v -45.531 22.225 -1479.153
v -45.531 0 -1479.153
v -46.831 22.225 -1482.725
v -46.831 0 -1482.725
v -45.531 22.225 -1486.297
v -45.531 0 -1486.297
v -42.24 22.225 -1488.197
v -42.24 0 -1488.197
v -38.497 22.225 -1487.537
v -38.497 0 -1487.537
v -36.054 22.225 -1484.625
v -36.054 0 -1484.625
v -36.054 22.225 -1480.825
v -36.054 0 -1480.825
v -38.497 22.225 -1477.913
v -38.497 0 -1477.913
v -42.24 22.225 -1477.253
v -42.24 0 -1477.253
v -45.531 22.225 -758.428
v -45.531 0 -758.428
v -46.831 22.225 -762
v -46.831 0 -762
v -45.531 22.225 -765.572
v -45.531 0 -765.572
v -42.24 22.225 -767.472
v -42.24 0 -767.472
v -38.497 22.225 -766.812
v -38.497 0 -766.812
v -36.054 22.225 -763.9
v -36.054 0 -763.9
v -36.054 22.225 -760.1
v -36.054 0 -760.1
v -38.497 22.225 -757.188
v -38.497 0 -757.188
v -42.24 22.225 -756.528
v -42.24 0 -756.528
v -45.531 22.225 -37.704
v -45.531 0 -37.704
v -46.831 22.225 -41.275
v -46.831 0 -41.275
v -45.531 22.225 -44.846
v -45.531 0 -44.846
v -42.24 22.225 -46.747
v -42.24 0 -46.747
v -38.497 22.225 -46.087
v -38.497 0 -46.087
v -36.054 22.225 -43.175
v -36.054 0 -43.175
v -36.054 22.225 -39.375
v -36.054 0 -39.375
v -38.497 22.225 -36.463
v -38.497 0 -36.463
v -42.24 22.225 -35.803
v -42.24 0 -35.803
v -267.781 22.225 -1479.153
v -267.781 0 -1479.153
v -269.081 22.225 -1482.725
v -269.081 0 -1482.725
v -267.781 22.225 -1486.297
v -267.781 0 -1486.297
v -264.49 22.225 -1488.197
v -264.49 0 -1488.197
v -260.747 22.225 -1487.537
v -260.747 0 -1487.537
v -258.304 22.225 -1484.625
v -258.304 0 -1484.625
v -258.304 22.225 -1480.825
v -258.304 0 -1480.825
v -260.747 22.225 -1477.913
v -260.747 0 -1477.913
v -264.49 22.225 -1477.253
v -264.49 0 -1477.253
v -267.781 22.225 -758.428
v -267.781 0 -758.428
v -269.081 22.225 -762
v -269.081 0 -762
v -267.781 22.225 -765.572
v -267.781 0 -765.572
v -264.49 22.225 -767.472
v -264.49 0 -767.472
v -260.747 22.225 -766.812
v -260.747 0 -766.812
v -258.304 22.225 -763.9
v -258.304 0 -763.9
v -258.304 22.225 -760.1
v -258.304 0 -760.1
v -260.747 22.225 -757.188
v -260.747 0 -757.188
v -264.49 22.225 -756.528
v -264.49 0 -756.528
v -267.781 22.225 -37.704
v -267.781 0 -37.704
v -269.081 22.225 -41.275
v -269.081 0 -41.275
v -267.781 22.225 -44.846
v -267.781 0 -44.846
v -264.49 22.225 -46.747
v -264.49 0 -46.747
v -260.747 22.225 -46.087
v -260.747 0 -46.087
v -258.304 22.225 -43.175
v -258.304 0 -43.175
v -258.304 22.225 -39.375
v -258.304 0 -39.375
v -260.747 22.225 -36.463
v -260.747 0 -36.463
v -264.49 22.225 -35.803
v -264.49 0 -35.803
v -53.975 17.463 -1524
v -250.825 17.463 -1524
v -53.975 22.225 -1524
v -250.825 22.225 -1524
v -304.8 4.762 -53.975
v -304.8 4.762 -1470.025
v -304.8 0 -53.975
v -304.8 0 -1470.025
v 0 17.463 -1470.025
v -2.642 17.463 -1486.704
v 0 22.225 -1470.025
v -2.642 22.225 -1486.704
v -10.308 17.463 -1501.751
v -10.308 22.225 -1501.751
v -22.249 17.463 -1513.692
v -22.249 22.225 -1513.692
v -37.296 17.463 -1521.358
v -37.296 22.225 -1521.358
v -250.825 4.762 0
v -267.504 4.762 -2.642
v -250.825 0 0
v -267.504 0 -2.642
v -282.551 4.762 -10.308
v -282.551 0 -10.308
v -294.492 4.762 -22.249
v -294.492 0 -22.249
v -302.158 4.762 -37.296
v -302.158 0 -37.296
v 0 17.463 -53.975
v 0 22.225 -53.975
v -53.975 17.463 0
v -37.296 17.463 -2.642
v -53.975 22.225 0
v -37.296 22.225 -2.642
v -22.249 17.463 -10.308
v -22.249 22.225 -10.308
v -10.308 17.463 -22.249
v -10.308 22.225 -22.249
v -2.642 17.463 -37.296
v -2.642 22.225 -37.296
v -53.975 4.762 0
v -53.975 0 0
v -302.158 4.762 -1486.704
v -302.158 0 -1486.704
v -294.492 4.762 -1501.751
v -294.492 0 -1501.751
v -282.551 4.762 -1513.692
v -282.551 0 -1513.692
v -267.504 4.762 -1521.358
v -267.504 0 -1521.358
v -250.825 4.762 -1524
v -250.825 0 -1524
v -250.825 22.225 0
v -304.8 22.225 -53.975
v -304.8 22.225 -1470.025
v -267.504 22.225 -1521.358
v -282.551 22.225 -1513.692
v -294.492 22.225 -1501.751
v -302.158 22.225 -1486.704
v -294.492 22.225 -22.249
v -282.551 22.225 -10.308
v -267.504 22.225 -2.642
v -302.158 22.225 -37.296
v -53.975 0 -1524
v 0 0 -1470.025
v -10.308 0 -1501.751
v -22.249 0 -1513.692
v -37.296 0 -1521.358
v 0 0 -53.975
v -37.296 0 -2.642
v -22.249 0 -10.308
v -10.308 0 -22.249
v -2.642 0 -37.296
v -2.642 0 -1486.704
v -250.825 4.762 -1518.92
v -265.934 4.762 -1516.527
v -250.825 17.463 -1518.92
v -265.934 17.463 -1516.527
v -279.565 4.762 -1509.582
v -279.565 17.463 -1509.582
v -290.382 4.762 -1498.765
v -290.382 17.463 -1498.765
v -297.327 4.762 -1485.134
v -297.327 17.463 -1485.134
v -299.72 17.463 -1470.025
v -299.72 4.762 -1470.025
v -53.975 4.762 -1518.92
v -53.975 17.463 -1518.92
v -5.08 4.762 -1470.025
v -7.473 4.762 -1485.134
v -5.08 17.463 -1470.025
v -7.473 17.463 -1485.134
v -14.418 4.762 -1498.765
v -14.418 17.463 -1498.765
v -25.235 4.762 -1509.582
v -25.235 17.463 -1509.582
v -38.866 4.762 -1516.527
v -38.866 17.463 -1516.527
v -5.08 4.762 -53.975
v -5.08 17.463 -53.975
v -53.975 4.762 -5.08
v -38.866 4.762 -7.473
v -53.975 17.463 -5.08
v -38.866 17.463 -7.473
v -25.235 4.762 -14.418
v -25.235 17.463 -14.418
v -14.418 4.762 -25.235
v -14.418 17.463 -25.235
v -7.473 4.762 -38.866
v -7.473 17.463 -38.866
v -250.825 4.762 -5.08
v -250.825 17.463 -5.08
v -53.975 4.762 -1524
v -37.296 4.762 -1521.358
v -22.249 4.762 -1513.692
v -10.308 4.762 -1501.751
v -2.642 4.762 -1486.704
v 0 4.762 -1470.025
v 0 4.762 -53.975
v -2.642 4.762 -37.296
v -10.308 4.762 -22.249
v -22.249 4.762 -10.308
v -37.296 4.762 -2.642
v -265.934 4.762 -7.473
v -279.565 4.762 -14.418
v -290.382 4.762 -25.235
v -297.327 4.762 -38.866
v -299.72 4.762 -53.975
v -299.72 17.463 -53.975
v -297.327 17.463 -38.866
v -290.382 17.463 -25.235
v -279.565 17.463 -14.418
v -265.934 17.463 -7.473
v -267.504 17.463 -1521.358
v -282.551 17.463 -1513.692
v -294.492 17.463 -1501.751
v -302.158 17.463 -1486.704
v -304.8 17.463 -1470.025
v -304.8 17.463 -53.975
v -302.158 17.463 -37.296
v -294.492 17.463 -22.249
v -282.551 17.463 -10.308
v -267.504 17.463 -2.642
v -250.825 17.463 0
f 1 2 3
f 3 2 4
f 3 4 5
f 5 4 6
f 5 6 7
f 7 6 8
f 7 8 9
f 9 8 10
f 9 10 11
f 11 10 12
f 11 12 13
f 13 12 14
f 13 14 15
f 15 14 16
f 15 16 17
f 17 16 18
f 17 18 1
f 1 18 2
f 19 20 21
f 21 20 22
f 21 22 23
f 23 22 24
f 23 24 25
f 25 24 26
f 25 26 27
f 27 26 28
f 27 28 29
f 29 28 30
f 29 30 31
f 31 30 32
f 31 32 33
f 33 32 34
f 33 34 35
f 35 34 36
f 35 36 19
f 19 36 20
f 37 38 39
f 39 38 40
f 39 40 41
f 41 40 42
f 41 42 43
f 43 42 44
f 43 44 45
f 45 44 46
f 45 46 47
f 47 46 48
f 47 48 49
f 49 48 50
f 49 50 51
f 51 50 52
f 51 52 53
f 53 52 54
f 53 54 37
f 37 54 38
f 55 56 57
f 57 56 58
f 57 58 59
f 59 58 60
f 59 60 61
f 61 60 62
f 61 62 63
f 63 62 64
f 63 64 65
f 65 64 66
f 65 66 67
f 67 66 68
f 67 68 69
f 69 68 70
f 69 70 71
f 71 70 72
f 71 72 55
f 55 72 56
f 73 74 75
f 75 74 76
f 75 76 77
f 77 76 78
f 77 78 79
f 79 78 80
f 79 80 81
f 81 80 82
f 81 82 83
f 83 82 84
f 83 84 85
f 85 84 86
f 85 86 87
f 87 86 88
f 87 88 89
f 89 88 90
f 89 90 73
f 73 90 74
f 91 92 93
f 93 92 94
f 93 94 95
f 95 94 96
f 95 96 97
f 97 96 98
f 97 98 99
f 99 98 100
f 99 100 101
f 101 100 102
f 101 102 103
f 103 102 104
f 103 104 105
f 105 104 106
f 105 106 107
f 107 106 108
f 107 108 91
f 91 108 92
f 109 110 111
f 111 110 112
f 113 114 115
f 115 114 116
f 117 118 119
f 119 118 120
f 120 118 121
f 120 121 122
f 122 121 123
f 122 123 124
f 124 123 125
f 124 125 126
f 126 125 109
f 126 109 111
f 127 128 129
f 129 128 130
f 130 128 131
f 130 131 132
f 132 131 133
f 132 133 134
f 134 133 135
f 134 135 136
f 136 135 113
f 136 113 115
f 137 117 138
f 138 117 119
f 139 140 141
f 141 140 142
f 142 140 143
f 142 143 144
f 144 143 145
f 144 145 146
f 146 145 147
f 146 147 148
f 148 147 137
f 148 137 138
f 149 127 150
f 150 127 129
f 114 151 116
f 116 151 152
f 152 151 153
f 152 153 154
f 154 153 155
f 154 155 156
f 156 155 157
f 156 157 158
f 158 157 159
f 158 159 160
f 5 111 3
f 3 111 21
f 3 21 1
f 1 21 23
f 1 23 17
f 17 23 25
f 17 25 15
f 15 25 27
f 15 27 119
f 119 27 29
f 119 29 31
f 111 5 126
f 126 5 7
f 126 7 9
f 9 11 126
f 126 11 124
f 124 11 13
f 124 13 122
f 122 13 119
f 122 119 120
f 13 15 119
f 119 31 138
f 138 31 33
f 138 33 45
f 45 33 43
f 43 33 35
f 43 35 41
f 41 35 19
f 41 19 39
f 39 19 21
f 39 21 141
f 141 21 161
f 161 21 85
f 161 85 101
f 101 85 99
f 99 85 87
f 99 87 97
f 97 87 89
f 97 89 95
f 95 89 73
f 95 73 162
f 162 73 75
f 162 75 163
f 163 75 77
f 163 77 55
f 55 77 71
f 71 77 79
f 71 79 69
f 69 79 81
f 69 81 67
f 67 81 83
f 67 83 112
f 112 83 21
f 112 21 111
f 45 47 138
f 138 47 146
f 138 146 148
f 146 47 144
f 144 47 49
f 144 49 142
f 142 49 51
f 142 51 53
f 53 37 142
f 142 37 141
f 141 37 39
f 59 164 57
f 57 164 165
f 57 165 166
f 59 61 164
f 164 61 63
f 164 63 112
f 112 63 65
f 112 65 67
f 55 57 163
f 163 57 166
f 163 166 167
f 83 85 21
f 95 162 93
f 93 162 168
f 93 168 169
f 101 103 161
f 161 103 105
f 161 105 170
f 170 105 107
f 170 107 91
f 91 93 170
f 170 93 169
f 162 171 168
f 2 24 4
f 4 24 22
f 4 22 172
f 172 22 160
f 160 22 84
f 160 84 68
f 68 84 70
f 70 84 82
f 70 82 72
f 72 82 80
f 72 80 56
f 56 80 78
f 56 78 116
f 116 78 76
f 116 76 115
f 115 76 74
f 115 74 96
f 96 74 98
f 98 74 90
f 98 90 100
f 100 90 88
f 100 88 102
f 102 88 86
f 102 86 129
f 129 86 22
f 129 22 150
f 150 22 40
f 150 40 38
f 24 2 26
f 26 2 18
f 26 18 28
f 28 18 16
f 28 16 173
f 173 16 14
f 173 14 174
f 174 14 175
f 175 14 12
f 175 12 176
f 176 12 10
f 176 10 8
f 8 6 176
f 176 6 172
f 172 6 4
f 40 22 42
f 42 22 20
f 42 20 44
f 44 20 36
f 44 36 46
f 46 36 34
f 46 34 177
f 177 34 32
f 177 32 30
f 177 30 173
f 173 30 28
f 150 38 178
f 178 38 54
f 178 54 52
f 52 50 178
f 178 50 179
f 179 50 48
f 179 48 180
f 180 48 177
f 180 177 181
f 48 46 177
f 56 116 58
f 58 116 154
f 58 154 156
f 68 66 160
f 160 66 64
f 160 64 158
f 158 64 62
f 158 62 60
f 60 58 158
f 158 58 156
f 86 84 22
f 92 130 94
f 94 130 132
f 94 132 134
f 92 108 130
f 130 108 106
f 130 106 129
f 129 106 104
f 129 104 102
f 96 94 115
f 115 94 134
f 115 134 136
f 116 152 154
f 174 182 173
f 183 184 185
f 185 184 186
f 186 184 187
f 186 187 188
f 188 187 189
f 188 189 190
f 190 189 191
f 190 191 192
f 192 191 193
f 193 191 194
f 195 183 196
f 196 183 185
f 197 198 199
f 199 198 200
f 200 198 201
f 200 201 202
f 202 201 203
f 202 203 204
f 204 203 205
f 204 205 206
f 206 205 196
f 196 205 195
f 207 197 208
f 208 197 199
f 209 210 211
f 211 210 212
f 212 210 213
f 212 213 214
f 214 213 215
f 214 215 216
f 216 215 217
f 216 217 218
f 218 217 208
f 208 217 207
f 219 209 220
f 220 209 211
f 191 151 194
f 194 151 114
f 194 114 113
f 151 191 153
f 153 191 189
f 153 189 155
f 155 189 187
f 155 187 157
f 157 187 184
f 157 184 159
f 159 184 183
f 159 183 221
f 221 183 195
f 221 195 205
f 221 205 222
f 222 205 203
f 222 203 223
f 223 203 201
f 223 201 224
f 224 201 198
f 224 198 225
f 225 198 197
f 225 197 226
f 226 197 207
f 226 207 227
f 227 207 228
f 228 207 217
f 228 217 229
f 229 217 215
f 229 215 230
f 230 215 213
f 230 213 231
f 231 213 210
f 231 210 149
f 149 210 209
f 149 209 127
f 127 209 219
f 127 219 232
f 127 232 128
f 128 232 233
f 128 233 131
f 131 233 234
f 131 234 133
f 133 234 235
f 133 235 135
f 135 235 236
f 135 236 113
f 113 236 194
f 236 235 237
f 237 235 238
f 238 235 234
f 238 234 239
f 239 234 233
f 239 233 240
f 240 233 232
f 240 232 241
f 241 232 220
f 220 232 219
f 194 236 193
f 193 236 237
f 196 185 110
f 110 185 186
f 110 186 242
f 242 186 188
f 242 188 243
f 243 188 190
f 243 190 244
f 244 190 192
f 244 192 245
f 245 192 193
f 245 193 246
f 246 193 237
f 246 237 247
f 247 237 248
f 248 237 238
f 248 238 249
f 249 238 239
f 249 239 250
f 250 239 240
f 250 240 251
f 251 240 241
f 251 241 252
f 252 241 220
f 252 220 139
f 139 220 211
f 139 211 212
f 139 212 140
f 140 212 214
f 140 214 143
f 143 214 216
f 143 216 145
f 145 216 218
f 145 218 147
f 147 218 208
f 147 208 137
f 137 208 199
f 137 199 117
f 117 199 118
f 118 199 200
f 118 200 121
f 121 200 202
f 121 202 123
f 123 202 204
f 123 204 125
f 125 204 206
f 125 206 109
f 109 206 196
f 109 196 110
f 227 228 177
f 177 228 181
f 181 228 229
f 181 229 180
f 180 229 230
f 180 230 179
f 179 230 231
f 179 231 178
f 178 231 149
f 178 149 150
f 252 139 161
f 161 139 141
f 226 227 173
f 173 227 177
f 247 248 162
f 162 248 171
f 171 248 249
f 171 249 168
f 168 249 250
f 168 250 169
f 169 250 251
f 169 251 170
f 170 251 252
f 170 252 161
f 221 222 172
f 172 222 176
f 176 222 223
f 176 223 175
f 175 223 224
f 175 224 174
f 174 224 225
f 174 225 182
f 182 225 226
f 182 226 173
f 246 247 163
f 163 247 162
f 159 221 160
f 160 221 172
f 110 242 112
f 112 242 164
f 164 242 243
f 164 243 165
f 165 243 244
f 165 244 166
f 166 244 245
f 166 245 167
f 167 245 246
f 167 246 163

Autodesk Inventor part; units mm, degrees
ref_plane "YZ Plane" through (0, 0, 0) normal (1, 0, 0) x (0, 1, 0)
ref_plane "XZ Plane" through (0, 0, 0) normal (0, 1, 0) x (-1, 0, 0)
ref_plane "XY Plane" through (0, 0, 0) normal (0, 0, 1) x (1, 0, 0)
sketch "Sketch1" plane through (0, 0, 0) normal (0, 1, 0) x (-1, 0, 0)
  line L0 (53.975, 0) -> (250.825, 0)
  line L1 (304.8, -53.975) -> (304.8, -1470.025)
  line L2 (250.825, -1524) -> (53.975, -1524)
  line L3 (0, -1470.025) -> (0, -53.975)
  circle A0 centre (263.525, -41.275) radius 5.5563
  circle A1 centre (263.525, -762) radius 5.5563
  circle A2 centre (263.525, -1482.725) radius 5.5563
  circle A3 centre (41.275, -41.275) radius 5.5563
  circle A4 centre (41.275, -762) radius 5.5563
  circle A5 centre (41.275, -1482.725) radius 5.5563
  arc A6 (304.8, -53.975) -> (250.825, 0) centre (250.825, -53.975) ccw
  arc A7 (0, -1470.025) -> (53.975, -1524) centre (53.975, -1470.025) ccw
  arc A8 (250.825, -1524) -> (304.8, -1470.025) centre (250.825, -1470.025) ccw
  arc A9 (53.975, 0) -> (0, -53.975) centre (53.975, -53.975) ccw
  point P0 (0, 0)
  point P1 (304.8, -1524)
  point P2 (0, -1524)
  dimension "d0" = 304.8
  dimension "d1" = 1524
  dimension "d2" = 11.1125
  dimension "d5" = 720.725
  dimension "d8" = 222.25
  dimension "d11" = 41.275
  dimension "d12" = 41.275
  dimension "d13" = 53.975
extrude "Extrusion1" add sketch "Sketch1" along normal blind 22.225
ref_plane "Work Plane3" through (0, 17.4625, 0) normal (0, 1, 0) x (1, 0, 0)
sketch "Sketch2" plane through (0, 17.4625, 0) normal (0, 1, 0) x (1, 0, 0)
  circle A0 centre (-41.275, 1482.725) radius 5.5562 projected
  circle A1 centre (-41.275, 762) radius 5.5562 projected
  circle A2 centre (-41.275, 41.275) radius 5.5562 projected
  circle A3 centre (-263.525, 1482.725) radius 5.5562 projected
  circle A4 centre (-263.525, 762) radius 5.5562 projected
  circle A5 centre (-263.525, 41.275) radius 5.5562 projected
  line L0 (-250.825, 0) -> (-53.975, 0) projected
  arc A6 (-53.975, 0) -> (0, 53.975) centre (-53.975, 53.975) ccw projected
  line L1 (0, 53.975) -> (0, 1470.025) projected
  arc A7 (0, 1470.025) -> (-53.975, 1524) centre (-53.975, 1470.025) ccw projected
  line L2 (-53.975, 1524) -> (-250.825, 1524) projected
  arc A8 (-250.825, 1524) -> (-304.8, 1470.025) centre (-250.825, 1470.025) ccw projected
  line L3 (-304.8, 1470.025) -> (-304.8, 53.975) projected
  arc A9 (-304.8, 53.975) -> (-250.825, 0) centre (-250.825, 53.975) ccw projected
  line L4 (0, 53.975) -> (0, 1470.025)
  arc A10 (-250.825, 1524) -> (-304.8, 1470.025) centre (-250.825, 1470.025) ccw projected
  line L5 (-53.975, 1524) -> (-250.825, 1524)
  line L6 (-304.8, 1470.025) -> (-304.8, 53.975) projected
  line L7 (-304.8, 1470.025) -> (-304.8, 53.975)
  line L8 (-250.825, 0) -> (-53.975, 0)
  point P0 (0, 0)
ref_plane "Work Plane4" through (0, 4.7625, 0) normal (0, -1, 0) x (1, 0, 0)
sketch "Sketch3" plane through (0, 4.7625, 0) normal (0, -1, 0) x (1, 0, 0)
  circle A0 centre (-41.275, -1482.725) radius 5.5562 projected
  circle A1 centre (-41.275, -762) radius 5.5562 projected
  circle A2 centre (-41.275, -41.275) radius 5.5562 projected
  circle A3 centre (-263.525, -1482.725) radius 5.5562 projected
  circle A4 centre (-263.525, -762) radius 5.5562 projected
  circle A5 centre (-263.525, -41.275) radius 5.5562 projected
  line L0 (-250.825, 0) -> (-53.975, 0) projected
  arc A6 (0, -53.975) -> (-53.975, 0) centre (-53.975, -53.975) ccw projected
  line L1 (0, -53.975) -> (0, -1470.025) projected
  arc A7 (-53.975, -1524) -> (0, -1470.025) centre (-53.975, -1470.025) ccw projected
  line L2 (-53.975, -1524) -> (-250.825, -1524) projected
  arc A8 (-304.8, -1470.025) -> (-250.825, -1524) centre (-250.825, -1470.025) ccw projected
  line L3 (-304.8, -1470.025) -> (-304.8, -53.975) projected
  arc A9 (-250.825, 0) -> (-304.8, -53.975) centre (-250.825, -53.975) ccw projected
  line L4 (-299.72, -53.975) -> (-299.72, -1470.025)
  arc A10 (-299.72, -1470.025) -> (-250.825, -1518.92) centre (-250.825, -1470.025) ccw
  line L5 (-250.825, -1518.92) -> (-53.975, -1518.92)
  arc A11 (-53.975, -1518.92) -> (-5.08, -1470.025) centre (-53.975, -1470.025) ccw
  line L6 (-5.08, -1470.025) -> (-5.08, -53.975)
  arc A12 (-5.08, -53.975) -> (-53.975, -5.08) centre (-53.975, -53.975) ccw
  line L7 (-53.975, -5.08) -> (-250.825, -5.08)
  arc A13 (-250.825, -5.08) -> (-299.72, -53.975) centre (-250.825, -53.975) ccw
  point P0 (0, 0)
  dimension "d26" = 5.08
sketch "Sketch8" plane through (0, 22.225, 0) normal (0, 1, 0) x (1, 0, 0)
  arc A0 (-53.975, 0) -> (0, 53.975) centre (-53.975, 53.975) ccw projected
  line L0 (-250.825, 0) -> (-53.975, 0) projected
  line L1 (-53.975, 0) -> (-250.825, 0)
  arc A1 (-304.8, 53.975) -> (-250.825, 0) centre (-250.825, 53.975) ccw projected
  arc A2 (-250.825, 1524) -> (-304.8, 1470.025) centre (-250.825, 1470.025) ccw projected
  line L2 (-304.8, 53.975) -> (-304.8, 1470.025)
  line L3 (-53.975, 1524) -> (-250.825, 1524) projected
  line L4 (-250.825, 1524) -> (-53.975, 1524)
  arc A3 (0, 1470.025) -> (-53.975, 1524) centre (-53.975, 1470.025) ccw projected
  line L5 (0, 1470.025) -> (0, 53.975)
  arc A4 (-53.975, 0) -> (0, 53.975) centre (-53.975, 53.975) ccw
  arc A5 (-304.8, 53.975) -> (-250.825, 0) centre (-250.825, 53.975) ccw
  arc A6 (-250.825, 1524) -> (-304.8, 1470.025) centre (-250.825, 1470.025) ccw
  arc A7 (0, 1470.025) -> (-53.975, 1524) centre (-53.975, 1470.025) ccw
  line L6 (-299.72, 1470.025) -> (-299.72, 53.975)
  arc A8 (-299.72, 53.975) -> (-250.825, 5.08) centre (-250.825, 53.975) ccw
  line L7 (-250.825, 5.08) -> (-53.975, 5.08)
  arc A9 (-53.975, 5.08) -> (-5.08, 53.975) centre (-53.975, 53.975) ccw
  line L8 (-5.08, 53.975) -> (-5.08, 1470.025)
  arc A10 (-5.08, 1470.025) -> (-53.975, 1518.92) centre (-53.975, 1470.025) ccw
  line L9 (-53.975, 1518.92) -> (-250.825, 1518.92)
  arc A11 (-250.825, 1518.92) -> (-299.72, 1470.025) centre (-250.825, 1470.025) ccw
  point P0 (0, 0)
  dimension "d25" = 5.08
extrude "Extrusion2" cut sketch "Sketch3" against normal blind 12.7 contours L0 A6 L1 A7 L2 A8 L3 A9
properties part number "EtgSignModV2"
